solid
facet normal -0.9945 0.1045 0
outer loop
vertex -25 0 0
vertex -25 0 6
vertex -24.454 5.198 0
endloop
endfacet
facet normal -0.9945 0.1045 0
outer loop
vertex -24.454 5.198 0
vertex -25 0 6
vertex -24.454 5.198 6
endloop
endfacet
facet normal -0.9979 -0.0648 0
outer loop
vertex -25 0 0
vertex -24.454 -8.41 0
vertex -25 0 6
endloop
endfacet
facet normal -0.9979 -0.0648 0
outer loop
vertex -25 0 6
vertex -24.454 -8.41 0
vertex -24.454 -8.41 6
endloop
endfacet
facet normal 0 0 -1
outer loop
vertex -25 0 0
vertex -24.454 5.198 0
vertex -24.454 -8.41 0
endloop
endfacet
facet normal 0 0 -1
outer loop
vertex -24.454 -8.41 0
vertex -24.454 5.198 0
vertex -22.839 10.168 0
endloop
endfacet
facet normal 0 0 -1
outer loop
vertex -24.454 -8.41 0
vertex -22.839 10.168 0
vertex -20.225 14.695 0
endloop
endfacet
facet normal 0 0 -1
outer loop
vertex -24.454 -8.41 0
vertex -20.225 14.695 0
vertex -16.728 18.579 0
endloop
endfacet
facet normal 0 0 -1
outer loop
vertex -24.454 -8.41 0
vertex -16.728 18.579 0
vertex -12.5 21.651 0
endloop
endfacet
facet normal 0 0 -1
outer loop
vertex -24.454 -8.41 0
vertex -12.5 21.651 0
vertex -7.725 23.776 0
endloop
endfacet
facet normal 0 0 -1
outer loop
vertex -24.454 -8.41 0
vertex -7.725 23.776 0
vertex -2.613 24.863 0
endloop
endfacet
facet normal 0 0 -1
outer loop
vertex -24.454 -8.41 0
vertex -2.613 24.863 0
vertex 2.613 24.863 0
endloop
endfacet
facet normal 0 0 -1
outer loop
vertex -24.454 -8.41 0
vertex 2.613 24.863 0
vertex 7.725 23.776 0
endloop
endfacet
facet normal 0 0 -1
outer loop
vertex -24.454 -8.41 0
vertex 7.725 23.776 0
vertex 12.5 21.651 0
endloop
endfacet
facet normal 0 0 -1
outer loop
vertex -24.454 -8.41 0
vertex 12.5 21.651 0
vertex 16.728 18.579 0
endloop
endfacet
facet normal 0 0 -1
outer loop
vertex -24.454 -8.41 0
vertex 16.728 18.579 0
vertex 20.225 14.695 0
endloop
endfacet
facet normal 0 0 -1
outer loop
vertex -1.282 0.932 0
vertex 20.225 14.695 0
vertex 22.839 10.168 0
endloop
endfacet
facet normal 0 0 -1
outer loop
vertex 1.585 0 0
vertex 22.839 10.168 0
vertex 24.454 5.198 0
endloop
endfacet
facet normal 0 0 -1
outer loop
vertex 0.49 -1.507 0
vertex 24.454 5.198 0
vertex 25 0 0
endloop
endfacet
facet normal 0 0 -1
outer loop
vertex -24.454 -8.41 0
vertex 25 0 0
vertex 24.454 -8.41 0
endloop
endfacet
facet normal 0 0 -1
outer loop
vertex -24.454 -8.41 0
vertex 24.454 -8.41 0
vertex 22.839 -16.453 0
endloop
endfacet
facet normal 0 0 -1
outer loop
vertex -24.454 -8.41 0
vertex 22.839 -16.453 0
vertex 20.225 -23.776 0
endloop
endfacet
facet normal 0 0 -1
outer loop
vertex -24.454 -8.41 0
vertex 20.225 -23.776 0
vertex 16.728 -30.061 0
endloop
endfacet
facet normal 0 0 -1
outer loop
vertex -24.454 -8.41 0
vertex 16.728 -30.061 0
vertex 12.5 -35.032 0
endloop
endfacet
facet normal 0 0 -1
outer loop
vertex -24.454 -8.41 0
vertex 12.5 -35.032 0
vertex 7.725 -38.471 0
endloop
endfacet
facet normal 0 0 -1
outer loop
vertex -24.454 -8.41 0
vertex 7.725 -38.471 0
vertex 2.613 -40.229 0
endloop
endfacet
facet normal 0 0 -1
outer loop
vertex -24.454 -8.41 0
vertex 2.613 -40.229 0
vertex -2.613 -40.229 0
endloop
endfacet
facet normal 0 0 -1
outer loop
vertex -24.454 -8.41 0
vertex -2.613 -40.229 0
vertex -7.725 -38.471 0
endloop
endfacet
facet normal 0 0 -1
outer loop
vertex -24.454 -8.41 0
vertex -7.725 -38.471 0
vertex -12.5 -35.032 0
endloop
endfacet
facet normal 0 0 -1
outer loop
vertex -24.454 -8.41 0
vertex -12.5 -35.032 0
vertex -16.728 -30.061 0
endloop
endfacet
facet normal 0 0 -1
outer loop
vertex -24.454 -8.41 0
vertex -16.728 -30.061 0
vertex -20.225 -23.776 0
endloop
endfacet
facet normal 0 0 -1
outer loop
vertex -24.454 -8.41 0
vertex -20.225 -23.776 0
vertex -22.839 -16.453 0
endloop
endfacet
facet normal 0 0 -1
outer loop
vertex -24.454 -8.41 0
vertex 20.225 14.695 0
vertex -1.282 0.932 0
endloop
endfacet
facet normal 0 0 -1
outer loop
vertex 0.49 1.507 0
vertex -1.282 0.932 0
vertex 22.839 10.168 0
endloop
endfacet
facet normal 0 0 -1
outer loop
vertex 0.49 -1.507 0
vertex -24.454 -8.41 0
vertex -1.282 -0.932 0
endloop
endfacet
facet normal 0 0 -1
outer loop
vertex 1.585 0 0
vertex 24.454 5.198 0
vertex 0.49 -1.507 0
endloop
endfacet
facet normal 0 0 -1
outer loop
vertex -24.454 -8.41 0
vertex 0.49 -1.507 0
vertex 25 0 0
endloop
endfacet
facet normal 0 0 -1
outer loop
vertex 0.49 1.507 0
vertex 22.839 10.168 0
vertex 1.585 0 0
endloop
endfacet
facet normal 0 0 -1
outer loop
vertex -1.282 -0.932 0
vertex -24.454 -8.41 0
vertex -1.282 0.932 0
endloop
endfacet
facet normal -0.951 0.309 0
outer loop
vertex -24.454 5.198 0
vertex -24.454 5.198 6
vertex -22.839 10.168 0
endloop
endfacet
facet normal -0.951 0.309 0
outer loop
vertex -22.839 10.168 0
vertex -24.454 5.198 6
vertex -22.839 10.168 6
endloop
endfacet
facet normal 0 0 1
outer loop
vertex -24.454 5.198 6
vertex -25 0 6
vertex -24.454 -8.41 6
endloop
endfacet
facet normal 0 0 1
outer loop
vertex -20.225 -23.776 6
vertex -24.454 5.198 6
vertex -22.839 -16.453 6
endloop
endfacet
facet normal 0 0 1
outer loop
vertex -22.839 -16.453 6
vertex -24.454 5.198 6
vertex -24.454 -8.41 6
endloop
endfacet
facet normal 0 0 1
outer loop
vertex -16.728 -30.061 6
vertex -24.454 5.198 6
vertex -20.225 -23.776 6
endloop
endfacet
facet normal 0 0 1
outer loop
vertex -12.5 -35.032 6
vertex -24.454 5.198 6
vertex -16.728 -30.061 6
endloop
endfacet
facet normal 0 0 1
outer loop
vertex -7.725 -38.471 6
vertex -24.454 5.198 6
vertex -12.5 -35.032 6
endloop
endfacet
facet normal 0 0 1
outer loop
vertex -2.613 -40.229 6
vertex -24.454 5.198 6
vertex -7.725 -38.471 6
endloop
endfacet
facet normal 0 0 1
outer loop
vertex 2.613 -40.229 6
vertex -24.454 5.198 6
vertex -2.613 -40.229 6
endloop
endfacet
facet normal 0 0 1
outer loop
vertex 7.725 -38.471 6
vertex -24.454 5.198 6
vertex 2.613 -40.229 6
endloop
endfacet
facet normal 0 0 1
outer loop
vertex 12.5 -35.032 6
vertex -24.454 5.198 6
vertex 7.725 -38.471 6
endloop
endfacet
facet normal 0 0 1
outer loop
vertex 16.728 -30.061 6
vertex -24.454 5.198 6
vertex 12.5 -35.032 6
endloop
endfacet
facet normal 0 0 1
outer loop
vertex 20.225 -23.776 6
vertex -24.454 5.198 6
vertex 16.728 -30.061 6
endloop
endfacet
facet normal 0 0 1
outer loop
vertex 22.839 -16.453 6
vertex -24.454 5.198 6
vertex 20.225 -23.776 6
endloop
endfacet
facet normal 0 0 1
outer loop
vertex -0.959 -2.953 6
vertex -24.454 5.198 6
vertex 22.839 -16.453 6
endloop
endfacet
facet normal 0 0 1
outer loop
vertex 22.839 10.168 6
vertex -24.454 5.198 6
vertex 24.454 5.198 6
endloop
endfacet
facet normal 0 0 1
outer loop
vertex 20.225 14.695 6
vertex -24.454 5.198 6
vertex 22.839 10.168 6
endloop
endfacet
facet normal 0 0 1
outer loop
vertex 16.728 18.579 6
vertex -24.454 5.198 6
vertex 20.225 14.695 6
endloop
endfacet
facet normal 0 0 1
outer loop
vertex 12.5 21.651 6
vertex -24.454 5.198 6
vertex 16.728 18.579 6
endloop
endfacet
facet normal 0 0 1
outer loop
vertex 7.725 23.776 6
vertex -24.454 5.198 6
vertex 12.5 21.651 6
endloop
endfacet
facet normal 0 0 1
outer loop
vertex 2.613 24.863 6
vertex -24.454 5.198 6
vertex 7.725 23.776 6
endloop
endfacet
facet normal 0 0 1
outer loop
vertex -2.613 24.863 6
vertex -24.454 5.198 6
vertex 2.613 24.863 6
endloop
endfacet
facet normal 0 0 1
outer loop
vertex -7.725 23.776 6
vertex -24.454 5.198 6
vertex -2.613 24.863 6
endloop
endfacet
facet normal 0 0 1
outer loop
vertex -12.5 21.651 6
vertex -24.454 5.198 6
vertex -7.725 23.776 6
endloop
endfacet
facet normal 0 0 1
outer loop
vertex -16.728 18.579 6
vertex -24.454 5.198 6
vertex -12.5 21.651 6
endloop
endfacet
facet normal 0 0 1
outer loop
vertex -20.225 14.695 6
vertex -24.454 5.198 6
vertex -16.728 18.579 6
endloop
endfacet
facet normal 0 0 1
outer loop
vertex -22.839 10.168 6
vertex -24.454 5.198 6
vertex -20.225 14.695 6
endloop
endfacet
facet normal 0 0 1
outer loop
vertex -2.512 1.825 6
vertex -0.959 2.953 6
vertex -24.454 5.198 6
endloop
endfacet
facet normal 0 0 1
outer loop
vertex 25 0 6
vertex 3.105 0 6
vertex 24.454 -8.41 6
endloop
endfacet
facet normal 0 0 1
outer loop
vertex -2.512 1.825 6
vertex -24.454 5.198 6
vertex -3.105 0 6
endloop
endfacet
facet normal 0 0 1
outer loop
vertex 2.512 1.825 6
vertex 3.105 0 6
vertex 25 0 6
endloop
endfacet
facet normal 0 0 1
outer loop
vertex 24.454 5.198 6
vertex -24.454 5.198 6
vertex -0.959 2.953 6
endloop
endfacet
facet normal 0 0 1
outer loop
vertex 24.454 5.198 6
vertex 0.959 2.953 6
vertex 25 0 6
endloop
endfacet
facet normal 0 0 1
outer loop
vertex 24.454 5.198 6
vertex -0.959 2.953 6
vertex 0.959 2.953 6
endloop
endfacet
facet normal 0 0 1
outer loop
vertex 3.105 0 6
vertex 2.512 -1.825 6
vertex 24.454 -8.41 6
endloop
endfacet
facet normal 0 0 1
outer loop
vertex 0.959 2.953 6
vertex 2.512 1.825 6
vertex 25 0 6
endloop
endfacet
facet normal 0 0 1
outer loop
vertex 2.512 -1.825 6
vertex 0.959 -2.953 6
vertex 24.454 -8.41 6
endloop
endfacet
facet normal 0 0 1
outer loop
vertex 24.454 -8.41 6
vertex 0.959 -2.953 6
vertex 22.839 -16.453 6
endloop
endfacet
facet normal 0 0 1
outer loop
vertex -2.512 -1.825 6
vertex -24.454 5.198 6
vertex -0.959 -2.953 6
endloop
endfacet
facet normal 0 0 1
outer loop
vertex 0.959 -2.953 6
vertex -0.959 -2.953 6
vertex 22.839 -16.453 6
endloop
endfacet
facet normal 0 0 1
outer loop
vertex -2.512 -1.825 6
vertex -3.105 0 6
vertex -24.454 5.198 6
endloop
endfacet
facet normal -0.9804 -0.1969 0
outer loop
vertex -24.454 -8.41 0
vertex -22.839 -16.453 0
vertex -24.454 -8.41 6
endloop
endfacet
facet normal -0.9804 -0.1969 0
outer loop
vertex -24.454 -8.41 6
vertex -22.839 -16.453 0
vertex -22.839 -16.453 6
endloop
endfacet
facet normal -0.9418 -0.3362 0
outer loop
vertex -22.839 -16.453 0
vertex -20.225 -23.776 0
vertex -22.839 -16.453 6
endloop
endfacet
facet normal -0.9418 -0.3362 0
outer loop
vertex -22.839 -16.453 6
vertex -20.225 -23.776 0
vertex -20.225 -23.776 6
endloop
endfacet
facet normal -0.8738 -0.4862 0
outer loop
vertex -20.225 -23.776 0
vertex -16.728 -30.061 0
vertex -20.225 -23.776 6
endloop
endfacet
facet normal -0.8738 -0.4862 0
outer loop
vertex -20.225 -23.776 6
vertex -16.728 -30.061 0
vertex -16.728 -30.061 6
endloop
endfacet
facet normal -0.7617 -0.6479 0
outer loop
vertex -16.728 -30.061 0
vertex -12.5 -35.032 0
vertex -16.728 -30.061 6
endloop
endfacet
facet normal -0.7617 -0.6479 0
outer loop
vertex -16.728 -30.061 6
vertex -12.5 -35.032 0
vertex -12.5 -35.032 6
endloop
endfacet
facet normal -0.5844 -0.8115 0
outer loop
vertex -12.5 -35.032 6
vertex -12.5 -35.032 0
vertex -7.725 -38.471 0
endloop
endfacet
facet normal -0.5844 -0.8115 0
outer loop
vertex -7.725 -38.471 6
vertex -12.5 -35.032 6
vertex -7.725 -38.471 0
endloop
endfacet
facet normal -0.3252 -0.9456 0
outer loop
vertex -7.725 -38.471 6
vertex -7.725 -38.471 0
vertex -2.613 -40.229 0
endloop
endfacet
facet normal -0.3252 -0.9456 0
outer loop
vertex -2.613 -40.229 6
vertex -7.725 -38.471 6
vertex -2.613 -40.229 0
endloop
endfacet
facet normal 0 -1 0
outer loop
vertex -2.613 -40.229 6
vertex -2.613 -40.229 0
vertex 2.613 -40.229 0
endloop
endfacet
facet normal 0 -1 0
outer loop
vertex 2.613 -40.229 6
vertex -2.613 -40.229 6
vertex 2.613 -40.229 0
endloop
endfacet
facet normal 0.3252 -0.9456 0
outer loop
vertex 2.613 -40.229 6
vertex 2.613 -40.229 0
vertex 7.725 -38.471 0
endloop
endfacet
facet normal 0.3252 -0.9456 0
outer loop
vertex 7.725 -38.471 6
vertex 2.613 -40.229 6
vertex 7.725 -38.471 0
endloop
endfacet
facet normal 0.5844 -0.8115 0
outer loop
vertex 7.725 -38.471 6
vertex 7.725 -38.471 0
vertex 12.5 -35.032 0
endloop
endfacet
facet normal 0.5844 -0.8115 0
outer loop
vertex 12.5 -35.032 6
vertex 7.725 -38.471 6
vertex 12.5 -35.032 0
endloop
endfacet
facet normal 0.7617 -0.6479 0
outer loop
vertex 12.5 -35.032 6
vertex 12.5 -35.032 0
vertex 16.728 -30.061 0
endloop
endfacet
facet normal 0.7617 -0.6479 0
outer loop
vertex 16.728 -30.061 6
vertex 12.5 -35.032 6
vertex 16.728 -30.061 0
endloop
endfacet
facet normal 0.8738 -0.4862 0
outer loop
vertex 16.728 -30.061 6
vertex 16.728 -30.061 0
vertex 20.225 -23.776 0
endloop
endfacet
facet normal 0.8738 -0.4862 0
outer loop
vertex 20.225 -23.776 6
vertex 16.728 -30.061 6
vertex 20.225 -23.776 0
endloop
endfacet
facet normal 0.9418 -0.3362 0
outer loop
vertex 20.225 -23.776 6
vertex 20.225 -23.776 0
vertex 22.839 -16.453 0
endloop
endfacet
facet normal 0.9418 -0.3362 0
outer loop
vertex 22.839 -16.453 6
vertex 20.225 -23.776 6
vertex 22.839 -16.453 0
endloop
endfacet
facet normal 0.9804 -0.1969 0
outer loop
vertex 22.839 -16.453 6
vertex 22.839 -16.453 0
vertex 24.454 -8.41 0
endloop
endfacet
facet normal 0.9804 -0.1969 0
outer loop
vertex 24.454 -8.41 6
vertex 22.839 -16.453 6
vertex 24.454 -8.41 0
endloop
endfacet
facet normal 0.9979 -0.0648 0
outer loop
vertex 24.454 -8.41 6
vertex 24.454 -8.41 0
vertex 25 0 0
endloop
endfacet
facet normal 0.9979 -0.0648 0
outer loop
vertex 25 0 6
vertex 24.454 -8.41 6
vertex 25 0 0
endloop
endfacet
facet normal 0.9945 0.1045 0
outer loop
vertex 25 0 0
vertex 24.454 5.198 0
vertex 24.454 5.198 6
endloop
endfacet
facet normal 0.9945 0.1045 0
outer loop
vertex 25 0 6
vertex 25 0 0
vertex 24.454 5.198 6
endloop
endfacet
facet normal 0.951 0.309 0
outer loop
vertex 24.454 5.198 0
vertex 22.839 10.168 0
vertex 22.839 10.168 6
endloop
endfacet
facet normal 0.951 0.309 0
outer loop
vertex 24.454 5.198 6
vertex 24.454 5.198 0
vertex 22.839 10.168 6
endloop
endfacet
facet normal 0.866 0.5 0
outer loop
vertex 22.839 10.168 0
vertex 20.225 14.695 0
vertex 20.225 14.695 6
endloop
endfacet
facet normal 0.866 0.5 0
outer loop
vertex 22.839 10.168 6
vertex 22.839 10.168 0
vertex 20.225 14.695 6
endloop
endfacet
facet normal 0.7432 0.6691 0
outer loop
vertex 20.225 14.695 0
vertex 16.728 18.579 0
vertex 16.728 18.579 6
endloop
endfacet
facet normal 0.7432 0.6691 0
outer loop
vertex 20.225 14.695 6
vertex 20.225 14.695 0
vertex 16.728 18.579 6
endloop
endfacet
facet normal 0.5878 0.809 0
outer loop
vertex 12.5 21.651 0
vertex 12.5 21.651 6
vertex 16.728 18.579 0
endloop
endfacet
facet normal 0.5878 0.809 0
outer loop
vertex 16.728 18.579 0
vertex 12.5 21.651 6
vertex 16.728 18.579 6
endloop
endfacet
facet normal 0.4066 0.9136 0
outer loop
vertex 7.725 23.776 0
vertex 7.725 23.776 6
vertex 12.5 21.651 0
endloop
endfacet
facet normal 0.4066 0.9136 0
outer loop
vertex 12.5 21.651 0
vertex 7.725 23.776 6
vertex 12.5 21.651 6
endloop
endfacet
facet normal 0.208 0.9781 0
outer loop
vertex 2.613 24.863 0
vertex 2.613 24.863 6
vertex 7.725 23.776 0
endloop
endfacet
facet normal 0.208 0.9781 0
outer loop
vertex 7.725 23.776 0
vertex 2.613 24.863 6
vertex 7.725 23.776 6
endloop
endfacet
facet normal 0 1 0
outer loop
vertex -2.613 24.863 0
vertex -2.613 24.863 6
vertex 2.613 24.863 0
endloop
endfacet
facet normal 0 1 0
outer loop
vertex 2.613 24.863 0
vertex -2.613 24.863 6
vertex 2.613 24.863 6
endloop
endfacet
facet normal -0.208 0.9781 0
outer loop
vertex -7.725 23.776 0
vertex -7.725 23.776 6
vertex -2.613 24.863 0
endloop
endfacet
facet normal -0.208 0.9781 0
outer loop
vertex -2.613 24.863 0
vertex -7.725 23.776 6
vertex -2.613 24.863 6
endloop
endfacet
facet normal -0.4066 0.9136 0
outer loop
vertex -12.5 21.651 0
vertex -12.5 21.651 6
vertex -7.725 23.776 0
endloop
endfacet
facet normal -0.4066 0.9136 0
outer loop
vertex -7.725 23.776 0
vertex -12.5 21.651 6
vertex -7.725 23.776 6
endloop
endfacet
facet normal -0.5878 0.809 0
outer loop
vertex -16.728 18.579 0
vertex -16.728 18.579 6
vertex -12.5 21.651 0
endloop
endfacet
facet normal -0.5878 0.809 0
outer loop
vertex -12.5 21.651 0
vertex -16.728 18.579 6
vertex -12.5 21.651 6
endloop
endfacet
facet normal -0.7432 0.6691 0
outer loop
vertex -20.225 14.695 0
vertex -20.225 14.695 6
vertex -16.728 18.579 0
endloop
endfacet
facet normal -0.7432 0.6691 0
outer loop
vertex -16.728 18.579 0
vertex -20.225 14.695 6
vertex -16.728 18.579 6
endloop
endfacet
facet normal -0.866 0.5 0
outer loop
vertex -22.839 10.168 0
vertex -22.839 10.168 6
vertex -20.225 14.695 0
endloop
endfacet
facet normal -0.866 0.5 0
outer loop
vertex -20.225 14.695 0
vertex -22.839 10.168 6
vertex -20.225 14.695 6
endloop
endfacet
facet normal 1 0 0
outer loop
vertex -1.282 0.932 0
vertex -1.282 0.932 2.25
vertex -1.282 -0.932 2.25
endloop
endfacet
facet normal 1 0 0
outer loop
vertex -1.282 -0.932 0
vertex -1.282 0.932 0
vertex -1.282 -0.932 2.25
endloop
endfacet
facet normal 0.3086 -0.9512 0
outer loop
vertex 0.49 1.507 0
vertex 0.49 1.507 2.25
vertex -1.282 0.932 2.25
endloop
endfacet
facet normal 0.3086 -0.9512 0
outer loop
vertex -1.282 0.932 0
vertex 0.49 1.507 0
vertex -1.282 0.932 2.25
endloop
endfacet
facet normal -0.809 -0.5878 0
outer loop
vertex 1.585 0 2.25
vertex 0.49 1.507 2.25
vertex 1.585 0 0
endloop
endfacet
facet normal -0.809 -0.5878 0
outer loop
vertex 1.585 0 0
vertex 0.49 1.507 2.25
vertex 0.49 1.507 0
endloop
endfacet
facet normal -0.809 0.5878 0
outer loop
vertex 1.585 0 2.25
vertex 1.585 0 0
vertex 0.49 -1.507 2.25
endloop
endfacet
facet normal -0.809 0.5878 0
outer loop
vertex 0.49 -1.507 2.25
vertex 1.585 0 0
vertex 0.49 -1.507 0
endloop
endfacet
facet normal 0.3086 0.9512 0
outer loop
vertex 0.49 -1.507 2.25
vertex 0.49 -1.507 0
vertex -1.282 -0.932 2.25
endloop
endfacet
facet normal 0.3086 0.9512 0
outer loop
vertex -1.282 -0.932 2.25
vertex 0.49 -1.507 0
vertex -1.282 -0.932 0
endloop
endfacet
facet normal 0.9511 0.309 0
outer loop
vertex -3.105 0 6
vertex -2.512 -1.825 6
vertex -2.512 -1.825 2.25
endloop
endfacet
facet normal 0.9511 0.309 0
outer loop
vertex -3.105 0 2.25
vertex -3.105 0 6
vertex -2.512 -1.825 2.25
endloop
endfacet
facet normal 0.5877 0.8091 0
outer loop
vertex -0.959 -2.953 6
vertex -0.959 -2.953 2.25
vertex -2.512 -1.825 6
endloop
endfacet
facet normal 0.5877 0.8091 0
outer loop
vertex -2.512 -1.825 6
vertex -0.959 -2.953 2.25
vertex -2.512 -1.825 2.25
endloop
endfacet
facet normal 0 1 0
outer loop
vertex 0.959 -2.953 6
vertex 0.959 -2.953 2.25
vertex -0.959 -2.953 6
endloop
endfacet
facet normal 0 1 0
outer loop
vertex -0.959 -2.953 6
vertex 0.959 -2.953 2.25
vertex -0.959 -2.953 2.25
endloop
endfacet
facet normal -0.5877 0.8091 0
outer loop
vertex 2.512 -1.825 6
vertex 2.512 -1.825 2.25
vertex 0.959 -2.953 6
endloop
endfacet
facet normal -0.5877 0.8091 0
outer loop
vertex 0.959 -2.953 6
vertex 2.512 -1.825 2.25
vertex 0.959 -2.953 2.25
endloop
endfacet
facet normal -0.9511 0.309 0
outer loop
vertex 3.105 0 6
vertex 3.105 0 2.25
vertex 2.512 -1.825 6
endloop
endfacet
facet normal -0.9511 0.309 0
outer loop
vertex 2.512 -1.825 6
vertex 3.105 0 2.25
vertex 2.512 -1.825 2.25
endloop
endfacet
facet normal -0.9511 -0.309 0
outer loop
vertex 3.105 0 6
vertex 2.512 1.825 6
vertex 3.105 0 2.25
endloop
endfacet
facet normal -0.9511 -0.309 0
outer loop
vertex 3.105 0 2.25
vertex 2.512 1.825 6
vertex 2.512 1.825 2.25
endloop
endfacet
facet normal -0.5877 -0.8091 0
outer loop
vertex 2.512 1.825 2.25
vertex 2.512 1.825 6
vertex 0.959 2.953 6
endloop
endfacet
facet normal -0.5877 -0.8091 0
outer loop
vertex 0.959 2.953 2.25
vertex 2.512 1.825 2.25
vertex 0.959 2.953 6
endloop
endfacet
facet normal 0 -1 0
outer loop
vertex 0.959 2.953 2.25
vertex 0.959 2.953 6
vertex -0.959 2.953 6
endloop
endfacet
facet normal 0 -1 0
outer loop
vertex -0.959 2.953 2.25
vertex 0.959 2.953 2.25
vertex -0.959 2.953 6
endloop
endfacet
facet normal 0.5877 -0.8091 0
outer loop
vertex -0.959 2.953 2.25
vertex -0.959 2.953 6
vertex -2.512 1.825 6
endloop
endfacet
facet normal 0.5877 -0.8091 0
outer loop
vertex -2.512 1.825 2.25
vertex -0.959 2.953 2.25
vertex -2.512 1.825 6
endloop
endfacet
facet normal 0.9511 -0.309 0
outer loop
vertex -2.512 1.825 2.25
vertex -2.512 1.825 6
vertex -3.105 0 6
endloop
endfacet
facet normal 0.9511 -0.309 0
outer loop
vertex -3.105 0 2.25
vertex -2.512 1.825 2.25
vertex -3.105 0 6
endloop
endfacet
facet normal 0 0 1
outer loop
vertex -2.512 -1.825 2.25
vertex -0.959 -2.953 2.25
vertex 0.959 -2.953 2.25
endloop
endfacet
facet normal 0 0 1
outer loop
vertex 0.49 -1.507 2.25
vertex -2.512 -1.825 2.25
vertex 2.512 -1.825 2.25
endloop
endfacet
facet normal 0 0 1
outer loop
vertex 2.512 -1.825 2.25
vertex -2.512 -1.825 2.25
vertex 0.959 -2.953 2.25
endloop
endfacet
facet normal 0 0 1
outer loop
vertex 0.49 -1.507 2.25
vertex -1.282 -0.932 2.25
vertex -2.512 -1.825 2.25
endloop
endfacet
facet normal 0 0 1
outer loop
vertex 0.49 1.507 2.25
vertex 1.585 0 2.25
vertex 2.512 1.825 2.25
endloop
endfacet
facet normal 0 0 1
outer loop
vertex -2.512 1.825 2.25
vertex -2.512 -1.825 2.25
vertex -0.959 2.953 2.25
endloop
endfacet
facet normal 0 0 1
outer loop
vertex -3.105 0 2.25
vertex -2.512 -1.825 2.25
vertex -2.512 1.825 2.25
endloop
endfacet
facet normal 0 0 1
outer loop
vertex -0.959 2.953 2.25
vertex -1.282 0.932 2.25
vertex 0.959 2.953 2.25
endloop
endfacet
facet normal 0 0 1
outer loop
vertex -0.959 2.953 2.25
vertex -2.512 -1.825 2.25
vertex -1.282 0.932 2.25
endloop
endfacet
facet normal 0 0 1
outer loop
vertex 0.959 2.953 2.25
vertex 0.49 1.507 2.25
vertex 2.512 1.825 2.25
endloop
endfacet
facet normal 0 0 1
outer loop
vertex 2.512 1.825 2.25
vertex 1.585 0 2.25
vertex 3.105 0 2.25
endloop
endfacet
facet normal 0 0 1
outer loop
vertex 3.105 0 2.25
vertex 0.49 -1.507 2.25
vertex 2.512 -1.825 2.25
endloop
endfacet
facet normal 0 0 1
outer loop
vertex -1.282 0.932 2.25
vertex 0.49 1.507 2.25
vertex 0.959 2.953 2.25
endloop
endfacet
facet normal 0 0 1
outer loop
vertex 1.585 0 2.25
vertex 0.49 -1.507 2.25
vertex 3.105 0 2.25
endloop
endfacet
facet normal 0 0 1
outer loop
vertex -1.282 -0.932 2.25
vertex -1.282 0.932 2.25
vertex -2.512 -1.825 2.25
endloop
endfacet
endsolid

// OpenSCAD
/**
 * Module Name: RobotLeg.scad
 * 
 * Description: 
 *     This is a "wheel" to be used by the robot
 */
module RobotLeg(radius=25)
{
	width = 6;
	servoMountDiameter = 2.52+.65;
	screwDiameter = 5.91+.3;
	servoInset = 3.75;
	GOLDEN_RATIO = 1.61803398875;

	difference()
	{
		union()
		{
			cylinder(r=radius, width);
			difference()
			{
				scale([1,GOLDEN_RATIO,1])
					cylinder(r=radius, width);
				translate([-radius,0,0])
					cube([radius*2, radius*GOLDEN_RATIO,width]);
			}

		}
		cylinder(d=servoMountDiameter,width);
		translate([0,0,width-servoInset])
			cylinder(d=screwDiameter, servoInset);
	}
}
RobotLeg();
